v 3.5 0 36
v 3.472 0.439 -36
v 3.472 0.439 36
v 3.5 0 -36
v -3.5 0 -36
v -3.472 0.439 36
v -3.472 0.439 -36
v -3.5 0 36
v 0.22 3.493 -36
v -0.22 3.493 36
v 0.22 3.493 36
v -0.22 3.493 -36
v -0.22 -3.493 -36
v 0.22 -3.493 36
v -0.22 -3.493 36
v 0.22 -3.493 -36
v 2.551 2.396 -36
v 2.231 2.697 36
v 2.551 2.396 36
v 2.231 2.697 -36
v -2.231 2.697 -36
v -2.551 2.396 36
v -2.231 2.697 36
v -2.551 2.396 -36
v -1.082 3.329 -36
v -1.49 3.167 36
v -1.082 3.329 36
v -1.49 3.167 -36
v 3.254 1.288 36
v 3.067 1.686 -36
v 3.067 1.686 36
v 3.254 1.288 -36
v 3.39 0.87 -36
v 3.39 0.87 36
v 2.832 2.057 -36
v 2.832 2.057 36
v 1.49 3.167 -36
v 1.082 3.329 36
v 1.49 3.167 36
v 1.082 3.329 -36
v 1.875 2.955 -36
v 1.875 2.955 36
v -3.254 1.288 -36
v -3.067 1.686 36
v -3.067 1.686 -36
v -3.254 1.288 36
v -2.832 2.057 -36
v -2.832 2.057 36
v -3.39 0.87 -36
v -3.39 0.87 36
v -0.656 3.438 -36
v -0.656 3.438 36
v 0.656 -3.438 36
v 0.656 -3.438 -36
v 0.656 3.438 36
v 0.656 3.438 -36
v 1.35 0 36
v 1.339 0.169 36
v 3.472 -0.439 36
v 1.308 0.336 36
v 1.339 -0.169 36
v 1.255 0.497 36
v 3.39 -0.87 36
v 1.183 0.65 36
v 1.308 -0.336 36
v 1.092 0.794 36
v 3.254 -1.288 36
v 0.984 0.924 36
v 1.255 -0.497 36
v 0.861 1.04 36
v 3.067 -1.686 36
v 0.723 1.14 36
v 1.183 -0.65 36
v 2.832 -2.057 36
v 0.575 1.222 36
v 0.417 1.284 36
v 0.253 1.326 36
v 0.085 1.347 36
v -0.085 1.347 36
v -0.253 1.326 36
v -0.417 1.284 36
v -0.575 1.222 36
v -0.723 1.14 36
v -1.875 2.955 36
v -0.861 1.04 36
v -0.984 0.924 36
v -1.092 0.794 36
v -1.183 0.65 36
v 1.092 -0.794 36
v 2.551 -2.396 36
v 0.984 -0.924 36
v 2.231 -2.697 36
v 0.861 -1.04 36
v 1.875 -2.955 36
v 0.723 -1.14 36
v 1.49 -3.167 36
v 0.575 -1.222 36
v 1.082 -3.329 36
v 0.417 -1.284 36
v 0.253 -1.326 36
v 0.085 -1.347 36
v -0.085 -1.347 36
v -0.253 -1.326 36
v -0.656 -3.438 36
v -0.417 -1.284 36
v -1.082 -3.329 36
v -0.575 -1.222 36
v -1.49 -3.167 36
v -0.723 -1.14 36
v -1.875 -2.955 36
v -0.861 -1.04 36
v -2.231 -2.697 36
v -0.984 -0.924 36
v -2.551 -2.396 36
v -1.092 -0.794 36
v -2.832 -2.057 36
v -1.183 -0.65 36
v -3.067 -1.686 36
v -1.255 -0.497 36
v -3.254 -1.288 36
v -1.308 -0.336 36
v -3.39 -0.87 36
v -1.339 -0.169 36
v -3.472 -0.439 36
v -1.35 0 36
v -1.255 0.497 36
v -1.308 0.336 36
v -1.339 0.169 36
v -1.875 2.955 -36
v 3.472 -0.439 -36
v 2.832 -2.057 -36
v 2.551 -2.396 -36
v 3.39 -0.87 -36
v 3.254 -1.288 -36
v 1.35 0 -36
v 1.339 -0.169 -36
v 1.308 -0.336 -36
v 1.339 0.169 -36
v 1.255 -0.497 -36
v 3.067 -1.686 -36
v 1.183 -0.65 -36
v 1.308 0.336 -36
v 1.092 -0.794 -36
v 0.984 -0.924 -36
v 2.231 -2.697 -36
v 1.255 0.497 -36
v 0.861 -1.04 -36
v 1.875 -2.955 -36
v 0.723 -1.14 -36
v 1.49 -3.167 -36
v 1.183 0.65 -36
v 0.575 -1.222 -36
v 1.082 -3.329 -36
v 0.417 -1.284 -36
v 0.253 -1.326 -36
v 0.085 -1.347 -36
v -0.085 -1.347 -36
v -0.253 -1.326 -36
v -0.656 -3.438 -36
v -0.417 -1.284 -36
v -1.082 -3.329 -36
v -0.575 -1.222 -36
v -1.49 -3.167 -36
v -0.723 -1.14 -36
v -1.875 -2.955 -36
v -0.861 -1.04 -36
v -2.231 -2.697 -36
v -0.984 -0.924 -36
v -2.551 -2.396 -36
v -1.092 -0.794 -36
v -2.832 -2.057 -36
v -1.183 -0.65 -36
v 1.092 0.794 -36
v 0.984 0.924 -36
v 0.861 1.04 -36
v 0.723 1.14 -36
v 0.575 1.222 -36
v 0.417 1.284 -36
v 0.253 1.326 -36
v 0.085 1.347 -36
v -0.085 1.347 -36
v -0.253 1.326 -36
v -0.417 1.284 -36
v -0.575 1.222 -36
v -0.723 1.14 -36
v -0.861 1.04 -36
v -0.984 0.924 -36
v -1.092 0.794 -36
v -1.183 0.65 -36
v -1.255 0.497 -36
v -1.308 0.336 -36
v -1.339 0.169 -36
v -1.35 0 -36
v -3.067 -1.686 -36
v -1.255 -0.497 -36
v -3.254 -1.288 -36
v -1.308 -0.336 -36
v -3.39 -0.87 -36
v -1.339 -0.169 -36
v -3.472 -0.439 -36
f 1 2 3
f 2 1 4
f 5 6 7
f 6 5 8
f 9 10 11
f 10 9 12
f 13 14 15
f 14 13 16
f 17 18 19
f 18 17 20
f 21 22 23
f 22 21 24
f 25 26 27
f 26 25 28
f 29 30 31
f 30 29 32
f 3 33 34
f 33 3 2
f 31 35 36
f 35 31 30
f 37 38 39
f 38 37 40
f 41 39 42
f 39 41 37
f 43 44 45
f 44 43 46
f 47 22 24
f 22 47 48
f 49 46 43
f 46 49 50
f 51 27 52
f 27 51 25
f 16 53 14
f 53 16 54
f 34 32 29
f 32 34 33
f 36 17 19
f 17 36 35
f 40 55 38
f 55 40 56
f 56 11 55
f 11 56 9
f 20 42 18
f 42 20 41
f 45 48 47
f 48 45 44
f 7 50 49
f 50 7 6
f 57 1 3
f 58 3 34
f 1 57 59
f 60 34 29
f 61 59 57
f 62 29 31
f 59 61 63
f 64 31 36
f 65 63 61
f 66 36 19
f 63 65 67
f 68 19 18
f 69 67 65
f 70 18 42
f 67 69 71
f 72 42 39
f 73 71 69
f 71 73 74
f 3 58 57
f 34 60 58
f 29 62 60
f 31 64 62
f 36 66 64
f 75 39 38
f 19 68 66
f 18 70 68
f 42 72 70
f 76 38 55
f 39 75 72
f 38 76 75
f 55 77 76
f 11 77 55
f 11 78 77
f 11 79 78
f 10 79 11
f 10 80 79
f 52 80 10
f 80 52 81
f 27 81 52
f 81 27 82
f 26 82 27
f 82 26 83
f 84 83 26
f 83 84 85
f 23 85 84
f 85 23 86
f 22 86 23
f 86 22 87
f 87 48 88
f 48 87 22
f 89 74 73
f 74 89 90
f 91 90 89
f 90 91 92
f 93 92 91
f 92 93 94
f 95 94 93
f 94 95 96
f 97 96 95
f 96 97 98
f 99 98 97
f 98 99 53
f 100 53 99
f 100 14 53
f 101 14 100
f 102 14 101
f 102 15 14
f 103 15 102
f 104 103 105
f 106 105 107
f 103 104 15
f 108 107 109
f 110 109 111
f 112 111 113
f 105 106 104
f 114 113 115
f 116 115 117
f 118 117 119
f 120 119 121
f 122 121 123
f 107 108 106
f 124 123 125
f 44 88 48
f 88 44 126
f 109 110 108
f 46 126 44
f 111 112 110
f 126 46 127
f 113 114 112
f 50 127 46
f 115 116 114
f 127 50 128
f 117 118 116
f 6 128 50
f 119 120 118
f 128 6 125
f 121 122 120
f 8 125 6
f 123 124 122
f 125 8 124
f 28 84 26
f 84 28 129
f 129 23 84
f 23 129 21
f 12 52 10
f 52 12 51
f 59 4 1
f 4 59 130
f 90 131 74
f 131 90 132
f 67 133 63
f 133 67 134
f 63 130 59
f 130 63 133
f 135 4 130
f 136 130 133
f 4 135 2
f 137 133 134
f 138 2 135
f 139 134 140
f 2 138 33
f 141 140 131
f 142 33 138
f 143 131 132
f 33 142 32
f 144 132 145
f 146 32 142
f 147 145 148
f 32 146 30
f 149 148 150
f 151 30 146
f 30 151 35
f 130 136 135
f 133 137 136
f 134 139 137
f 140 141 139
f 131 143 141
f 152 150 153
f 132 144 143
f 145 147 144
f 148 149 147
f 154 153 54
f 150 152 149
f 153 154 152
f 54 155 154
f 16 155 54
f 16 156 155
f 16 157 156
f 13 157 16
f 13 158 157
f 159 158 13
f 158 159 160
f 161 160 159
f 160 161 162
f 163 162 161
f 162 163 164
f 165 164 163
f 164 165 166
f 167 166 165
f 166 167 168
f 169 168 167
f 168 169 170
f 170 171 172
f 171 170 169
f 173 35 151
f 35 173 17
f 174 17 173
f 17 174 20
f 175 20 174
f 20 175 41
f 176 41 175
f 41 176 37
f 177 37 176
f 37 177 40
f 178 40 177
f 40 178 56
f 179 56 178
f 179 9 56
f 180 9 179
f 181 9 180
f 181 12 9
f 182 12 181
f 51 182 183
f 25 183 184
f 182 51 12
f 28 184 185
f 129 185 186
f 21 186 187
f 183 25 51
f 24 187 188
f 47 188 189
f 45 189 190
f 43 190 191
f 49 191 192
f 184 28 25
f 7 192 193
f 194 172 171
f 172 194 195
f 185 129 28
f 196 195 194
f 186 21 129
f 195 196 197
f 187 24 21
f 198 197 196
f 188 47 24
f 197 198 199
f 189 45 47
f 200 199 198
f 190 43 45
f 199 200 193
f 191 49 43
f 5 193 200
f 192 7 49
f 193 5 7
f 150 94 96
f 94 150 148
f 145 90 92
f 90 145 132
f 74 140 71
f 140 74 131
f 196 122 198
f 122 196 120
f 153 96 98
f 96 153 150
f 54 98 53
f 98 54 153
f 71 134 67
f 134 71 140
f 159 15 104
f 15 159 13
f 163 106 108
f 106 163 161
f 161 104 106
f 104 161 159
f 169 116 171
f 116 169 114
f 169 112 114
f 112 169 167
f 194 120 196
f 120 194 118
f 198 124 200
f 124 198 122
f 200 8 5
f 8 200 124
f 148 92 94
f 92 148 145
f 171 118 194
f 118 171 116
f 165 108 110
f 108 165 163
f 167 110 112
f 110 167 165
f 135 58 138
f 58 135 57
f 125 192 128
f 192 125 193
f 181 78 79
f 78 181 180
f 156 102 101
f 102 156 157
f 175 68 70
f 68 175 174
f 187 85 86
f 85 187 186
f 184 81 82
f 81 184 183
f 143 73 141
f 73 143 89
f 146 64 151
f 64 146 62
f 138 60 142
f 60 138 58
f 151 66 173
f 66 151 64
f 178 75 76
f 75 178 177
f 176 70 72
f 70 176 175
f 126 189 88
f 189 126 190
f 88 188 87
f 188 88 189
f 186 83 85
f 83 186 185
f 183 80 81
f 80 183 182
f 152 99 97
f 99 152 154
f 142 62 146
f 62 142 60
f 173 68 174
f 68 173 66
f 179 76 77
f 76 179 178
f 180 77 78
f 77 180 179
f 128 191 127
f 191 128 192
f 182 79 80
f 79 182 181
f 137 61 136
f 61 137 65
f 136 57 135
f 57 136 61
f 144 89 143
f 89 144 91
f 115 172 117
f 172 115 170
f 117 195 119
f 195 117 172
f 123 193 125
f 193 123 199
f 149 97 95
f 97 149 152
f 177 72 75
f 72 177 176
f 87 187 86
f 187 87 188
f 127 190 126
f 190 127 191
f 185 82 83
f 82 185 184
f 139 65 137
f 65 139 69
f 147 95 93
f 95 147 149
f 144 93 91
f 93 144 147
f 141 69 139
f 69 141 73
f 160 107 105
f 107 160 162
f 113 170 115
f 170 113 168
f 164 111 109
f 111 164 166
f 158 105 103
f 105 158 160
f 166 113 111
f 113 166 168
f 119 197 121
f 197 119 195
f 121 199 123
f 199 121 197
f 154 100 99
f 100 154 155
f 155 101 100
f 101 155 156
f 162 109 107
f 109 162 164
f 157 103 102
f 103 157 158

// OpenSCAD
$fn = 50;


difference() {
	union() {
		translate(v = [0, 0, -36.0000000000]) {
			cylinder(h = 72, r = 3.5000000000);
		}
	}
	union() {
		translate(v = [0, 0, -100.0000000000]) {
			cylinder(h = 200, r = 1.3500000000);
		}
	}
}
